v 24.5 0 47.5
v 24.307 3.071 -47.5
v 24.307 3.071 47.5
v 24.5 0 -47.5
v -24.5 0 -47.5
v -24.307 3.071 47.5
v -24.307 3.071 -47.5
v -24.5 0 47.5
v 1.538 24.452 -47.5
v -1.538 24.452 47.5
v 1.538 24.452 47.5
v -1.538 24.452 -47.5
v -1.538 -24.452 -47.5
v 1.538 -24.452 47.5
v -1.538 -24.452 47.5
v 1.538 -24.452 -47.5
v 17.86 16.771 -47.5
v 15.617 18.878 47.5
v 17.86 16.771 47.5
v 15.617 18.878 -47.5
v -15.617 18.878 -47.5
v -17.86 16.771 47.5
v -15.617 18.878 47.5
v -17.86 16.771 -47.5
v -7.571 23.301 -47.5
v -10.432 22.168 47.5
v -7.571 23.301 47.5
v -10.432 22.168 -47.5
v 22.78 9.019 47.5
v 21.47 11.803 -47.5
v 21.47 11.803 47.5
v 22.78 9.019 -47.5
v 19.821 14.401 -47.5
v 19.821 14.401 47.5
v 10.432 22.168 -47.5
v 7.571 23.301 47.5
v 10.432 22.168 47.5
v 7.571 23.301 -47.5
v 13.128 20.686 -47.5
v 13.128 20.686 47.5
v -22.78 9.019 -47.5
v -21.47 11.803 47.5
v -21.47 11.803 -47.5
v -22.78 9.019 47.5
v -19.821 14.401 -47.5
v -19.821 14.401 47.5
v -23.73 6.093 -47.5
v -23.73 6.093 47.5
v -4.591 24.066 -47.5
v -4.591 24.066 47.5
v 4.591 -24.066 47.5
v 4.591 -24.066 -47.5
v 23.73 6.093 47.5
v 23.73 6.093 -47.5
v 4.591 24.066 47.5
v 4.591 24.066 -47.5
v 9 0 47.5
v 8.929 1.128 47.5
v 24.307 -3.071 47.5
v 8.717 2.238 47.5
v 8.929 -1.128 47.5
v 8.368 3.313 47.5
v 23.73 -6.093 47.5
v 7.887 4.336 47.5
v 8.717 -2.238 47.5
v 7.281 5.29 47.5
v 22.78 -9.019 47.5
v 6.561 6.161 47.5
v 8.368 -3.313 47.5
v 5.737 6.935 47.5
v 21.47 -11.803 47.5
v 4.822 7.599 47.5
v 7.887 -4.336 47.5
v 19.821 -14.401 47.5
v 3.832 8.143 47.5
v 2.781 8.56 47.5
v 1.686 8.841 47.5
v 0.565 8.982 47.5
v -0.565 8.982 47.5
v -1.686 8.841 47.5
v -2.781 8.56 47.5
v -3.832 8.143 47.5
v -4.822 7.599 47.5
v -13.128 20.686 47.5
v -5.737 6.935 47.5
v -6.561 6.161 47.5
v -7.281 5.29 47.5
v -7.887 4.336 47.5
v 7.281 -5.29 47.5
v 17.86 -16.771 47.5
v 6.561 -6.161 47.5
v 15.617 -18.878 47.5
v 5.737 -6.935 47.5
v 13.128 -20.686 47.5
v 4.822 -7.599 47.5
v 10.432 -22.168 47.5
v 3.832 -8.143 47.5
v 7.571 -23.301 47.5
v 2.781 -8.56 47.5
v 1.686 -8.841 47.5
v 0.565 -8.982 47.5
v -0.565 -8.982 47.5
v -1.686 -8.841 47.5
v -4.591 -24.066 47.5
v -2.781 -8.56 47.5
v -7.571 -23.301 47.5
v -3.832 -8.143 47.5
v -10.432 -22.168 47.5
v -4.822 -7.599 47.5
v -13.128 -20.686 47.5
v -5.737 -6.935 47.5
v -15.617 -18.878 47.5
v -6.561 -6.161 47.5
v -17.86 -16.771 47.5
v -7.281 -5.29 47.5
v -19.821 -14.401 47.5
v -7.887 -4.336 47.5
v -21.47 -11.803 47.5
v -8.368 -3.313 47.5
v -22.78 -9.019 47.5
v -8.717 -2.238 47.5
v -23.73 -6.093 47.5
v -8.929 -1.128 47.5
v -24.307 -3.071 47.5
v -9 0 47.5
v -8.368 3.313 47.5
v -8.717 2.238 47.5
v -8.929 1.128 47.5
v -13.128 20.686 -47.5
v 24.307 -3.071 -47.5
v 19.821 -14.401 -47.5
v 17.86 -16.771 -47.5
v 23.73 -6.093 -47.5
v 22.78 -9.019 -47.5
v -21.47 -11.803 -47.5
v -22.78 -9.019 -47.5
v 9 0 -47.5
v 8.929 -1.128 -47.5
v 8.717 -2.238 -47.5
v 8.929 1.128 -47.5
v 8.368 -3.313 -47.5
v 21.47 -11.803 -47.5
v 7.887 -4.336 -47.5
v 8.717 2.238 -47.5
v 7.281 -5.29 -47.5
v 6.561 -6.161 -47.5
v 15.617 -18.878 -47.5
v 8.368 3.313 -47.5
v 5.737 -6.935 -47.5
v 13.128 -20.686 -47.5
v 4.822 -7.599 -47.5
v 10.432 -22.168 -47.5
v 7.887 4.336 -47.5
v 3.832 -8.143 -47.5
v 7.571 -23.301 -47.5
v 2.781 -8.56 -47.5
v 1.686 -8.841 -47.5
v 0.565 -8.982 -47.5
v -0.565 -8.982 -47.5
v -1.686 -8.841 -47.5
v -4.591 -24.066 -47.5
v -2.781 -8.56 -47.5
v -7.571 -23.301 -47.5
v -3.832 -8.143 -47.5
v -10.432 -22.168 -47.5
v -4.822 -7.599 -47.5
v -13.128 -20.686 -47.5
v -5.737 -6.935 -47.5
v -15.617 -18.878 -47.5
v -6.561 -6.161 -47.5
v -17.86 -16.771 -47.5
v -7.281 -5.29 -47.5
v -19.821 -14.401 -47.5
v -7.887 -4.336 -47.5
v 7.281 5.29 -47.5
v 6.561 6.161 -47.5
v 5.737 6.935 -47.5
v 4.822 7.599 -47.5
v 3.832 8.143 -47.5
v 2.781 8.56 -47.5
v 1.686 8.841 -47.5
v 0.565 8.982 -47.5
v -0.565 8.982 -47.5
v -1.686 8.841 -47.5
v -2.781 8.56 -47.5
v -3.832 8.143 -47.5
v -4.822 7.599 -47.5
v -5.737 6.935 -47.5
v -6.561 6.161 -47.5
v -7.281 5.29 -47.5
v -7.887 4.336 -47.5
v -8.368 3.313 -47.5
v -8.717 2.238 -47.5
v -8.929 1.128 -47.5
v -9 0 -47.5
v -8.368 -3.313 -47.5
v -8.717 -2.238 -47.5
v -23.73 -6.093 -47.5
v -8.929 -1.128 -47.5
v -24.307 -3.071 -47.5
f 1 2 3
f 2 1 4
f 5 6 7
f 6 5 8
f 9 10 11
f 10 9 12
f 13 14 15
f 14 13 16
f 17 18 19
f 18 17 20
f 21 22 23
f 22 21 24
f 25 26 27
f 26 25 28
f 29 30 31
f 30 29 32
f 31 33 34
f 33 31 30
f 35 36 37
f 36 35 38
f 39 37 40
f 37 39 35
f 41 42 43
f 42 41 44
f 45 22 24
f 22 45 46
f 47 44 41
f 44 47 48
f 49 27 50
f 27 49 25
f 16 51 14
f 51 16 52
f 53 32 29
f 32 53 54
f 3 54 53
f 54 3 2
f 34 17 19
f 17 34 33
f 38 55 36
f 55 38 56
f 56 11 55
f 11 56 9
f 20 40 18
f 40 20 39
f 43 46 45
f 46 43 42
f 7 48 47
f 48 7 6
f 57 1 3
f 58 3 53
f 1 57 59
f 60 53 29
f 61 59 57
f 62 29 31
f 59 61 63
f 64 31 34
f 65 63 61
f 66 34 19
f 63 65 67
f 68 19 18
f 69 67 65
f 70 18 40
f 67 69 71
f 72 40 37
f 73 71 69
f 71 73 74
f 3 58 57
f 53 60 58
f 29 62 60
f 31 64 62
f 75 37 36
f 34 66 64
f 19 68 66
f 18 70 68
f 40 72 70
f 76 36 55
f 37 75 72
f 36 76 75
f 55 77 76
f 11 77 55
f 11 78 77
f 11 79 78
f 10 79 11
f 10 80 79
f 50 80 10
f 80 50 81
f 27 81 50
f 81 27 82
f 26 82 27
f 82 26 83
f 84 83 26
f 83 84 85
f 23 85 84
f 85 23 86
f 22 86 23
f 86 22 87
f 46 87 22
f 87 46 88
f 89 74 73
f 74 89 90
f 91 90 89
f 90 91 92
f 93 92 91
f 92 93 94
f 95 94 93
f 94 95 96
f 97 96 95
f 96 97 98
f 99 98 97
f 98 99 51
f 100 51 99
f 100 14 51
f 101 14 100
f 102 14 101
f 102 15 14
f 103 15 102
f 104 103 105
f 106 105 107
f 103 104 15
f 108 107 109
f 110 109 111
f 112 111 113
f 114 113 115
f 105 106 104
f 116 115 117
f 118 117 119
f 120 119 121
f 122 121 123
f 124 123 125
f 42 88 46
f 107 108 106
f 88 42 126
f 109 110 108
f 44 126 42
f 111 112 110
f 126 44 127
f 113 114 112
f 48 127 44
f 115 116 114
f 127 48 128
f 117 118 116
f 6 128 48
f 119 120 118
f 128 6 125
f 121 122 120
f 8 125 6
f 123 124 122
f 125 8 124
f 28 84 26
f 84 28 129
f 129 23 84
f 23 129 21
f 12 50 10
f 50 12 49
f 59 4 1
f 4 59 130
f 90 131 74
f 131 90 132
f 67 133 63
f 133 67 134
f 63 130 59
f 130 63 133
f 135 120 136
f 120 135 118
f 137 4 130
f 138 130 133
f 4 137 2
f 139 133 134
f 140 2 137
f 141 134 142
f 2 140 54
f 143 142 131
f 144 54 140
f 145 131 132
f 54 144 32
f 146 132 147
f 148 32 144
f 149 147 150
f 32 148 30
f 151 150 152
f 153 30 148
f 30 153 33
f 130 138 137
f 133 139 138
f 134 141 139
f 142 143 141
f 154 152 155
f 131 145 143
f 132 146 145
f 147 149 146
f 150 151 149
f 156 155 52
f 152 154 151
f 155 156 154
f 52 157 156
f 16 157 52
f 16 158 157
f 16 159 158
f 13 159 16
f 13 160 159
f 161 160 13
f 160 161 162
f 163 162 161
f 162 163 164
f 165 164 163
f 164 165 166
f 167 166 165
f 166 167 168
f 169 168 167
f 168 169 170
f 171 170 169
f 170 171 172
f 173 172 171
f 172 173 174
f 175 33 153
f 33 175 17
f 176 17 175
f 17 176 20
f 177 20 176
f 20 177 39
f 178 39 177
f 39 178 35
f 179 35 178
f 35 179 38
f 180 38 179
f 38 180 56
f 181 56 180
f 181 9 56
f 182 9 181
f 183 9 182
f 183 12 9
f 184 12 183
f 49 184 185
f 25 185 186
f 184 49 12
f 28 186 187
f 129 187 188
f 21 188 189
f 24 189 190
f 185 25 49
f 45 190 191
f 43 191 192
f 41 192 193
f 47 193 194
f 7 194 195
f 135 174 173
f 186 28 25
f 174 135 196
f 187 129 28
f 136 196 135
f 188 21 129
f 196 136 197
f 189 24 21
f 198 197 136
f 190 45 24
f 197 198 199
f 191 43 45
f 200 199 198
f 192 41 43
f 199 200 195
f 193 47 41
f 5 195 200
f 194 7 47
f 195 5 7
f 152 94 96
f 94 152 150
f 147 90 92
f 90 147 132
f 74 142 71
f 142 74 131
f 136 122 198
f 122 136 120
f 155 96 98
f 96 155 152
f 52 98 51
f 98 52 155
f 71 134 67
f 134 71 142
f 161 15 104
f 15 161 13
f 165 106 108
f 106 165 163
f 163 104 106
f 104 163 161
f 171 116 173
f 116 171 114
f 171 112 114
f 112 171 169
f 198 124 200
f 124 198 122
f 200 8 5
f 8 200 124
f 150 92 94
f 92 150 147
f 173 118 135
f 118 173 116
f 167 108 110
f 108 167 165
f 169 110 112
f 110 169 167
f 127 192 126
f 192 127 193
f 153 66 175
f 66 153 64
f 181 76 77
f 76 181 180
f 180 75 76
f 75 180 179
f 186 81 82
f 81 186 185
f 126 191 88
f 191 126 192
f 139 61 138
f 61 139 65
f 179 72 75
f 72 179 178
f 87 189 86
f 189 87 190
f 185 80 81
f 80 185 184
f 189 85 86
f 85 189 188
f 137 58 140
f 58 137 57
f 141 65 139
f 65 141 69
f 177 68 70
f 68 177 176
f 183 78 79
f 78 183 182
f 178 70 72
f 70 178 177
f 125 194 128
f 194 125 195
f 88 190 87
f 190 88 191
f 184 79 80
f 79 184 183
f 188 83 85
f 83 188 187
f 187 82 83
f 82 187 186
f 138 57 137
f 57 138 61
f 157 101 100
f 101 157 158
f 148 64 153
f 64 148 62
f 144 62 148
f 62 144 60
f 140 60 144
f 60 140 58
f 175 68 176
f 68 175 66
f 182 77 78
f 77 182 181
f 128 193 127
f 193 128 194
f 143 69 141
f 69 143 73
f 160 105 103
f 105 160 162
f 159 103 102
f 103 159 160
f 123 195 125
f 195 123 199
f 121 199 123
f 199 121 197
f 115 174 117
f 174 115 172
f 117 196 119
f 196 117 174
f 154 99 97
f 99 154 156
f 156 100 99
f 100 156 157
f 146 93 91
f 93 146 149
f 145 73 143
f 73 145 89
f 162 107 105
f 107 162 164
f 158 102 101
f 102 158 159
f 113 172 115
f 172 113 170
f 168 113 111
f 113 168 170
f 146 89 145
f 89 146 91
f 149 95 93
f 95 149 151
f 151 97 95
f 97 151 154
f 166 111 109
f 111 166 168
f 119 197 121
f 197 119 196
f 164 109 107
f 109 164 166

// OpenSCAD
$fn = 50;


difference() {
	union() {
		translate(v = [0, 0, -47.5000000000]) {
			cylinder(h = 95, r = 24.5000000000);
		}
	}
	union() {
		translate(v = [0, 0, -100.0000000000]) {
			cylinder(h = 200, r = 9);
		}
	}
}
